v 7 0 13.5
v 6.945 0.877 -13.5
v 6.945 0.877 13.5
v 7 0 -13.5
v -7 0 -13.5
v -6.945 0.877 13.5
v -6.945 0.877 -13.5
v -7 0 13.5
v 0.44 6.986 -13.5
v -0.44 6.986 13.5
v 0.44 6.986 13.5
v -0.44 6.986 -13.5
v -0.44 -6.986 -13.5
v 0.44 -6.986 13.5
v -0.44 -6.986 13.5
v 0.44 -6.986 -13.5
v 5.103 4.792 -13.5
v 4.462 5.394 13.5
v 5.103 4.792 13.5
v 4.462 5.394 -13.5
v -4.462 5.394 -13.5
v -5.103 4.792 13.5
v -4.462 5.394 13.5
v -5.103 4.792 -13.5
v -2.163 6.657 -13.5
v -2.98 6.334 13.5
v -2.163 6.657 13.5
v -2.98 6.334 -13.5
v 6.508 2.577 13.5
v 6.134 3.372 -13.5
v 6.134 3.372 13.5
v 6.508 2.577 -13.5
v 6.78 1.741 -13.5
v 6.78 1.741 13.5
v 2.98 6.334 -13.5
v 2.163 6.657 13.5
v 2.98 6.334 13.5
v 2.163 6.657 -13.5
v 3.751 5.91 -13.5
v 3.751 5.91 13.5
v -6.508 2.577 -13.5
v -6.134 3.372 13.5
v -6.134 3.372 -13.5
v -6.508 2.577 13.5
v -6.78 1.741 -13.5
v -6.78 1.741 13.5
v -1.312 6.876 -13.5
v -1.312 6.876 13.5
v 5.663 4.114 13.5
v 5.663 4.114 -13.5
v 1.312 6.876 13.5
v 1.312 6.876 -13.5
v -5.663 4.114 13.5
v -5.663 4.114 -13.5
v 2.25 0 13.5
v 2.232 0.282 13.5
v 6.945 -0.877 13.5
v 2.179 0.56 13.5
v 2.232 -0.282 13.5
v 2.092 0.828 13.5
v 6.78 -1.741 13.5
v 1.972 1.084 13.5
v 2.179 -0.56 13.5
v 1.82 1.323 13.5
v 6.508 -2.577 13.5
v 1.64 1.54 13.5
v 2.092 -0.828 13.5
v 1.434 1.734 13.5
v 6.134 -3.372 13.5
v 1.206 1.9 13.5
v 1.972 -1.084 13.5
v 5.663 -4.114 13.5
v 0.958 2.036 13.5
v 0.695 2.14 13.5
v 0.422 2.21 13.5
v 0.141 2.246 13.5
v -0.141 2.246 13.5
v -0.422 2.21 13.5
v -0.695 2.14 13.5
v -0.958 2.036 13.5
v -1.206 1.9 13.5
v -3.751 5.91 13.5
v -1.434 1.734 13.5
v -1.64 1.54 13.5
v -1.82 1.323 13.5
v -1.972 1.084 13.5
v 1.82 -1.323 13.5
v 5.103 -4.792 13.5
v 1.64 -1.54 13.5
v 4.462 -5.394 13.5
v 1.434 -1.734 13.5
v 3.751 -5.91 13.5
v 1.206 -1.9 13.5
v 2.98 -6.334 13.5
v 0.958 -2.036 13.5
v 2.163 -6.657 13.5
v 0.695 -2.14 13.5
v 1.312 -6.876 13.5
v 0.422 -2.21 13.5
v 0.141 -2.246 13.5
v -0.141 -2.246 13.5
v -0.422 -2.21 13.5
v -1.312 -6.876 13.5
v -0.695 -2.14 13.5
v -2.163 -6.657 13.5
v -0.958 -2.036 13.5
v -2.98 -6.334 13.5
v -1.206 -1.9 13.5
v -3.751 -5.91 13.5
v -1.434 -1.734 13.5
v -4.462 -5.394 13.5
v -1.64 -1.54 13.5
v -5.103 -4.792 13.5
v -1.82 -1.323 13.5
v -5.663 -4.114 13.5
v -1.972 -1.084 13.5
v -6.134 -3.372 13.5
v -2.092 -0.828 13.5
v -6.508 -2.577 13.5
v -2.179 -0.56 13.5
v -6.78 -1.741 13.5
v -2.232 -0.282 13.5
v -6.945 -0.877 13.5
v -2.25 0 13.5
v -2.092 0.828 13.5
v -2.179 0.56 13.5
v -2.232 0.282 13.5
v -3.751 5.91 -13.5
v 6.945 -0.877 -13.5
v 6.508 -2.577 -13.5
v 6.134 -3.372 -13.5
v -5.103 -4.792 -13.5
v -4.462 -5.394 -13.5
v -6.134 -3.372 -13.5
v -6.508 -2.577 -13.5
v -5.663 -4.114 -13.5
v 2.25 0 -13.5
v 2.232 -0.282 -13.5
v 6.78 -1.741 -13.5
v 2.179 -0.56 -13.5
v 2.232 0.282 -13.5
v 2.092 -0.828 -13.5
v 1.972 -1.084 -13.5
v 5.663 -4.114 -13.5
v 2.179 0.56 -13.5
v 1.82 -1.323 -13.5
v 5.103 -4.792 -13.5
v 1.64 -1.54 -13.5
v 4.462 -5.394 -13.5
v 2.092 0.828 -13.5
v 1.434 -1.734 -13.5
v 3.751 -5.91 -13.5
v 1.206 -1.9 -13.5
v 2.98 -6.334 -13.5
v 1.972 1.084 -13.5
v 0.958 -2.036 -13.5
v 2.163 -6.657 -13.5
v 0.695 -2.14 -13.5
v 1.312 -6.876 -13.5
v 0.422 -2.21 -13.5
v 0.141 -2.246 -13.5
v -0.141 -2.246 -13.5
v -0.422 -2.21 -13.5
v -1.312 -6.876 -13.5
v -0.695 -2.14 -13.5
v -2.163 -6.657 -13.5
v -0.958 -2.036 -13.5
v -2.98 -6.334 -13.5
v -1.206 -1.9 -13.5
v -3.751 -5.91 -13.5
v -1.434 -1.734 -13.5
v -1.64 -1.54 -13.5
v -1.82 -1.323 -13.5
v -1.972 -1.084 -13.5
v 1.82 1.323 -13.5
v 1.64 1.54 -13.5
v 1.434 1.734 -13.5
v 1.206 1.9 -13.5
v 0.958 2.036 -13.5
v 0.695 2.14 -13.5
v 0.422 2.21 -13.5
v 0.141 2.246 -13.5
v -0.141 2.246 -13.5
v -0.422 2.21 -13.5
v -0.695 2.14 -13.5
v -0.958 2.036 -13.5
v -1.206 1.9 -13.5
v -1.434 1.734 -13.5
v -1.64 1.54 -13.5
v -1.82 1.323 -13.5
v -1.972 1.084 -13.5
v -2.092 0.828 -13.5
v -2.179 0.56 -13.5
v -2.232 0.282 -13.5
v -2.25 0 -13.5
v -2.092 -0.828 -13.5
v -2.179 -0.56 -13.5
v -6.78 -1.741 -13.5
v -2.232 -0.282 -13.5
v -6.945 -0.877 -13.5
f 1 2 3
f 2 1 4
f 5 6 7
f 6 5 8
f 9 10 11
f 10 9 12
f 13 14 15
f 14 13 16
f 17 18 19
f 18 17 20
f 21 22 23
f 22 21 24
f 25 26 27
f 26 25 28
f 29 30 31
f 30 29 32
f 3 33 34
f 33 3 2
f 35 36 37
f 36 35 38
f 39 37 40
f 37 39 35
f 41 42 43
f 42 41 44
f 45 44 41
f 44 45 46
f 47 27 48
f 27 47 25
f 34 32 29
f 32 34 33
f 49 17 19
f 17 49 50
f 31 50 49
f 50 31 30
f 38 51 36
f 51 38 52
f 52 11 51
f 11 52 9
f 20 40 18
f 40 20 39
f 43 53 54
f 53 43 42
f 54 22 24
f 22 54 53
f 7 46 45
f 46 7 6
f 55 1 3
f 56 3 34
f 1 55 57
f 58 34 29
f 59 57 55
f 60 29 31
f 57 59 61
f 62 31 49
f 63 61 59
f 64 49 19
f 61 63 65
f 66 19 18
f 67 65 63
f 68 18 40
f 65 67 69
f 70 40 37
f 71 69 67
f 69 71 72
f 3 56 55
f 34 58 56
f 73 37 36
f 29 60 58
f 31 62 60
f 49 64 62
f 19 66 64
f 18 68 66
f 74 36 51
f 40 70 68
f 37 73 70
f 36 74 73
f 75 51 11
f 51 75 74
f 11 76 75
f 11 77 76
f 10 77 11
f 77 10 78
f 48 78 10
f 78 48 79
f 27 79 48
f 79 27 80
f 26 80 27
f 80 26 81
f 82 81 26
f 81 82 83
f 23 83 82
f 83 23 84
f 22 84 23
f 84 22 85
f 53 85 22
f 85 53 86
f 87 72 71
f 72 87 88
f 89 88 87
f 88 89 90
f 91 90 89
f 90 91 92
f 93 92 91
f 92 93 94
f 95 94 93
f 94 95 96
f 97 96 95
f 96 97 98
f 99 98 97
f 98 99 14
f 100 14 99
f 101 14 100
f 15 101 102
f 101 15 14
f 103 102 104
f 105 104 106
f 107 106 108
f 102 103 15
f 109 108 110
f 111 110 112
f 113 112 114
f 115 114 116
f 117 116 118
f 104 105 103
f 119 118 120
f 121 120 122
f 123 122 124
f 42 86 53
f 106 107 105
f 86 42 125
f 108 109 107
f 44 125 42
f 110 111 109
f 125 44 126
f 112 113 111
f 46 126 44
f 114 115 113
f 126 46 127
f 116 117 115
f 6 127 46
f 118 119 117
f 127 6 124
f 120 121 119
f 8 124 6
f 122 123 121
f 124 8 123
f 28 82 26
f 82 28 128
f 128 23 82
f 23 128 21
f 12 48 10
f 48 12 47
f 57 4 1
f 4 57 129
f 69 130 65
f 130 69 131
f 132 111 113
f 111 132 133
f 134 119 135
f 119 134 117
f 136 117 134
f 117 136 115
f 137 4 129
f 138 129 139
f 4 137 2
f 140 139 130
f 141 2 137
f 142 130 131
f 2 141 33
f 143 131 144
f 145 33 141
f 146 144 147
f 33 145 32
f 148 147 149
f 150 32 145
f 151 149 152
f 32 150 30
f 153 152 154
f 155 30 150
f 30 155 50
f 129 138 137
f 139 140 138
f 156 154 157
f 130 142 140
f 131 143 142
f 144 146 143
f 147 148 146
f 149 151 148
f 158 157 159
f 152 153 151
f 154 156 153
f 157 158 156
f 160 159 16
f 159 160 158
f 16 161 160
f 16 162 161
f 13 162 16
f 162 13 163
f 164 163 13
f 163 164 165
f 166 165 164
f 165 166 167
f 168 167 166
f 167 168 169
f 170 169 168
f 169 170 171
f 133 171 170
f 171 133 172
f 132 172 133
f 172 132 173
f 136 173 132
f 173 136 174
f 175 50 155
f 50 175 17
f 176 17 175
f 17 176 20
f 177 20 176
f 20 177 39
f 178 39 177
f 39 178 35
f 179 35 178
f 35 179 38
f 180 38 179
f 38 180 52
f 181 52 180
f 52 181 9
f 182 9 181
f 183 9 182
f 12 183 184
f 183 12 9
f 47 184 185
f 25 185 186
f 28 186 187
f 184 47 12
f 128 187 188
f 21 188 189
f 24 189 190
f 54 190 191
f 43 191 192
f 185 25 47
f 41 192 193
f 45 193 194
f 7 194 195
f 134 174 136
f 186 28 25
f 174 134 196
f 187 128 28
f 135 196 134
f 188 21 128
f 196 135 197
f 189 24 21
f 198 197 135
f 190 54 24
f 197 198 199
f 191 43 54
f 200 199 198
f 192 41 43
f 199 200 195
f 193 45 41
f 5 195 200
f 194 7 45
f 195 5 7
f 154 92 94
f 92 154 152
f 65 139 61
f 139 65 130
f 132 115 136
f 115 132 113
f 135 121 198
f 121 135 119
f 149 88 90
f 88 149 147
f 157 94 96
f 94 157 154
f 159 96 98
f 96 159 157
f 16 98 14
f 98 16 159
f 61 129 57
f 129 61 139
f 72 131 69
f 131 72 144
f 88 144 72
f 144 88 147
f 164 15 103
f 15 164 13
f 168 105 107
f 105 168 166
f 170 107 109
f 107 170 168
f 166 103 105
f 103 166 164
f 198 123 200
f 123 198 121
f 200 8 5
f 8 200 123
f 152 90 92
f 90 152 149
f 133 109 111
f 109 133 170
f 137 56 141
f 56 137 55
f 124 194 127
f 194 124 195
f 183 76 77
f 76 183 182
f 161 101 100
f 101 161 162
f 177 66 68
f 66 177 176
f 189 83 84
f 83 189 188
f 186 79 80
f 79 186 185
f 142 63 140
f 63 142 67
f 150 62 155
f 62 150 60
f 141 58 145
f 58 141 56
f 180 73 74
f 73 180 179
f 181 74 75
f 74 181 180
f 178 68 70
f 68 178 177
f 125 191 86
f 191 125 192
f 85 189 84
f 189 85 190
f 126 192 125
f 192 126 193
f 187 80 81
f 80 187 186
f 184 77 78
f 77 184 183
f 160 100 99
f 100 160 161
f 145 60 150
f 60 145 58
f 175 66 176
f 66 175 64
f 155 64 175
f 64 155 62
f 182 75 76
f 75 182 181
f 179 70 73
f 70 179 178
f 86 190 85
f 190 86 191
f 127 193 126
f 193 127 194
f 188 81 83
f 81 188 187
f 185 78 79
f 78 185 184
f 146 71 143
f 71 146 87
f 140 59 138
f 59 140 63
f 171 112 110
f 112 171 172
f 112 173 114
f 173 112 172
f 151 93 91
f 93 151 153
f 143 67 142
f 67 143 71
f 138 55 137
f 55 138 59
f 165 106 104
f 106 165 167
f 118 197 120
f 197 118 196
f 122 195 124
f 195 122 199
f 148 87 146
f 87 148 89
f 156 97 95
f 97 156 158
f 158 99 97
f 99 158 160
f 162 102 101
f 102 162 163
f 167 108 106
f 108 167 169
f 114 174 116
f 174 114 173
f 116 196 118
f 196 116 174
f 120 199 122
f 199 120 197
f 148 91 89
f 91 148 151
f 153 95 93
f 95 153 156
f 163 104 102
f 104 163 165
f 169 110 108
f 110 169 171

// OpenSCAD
$fn = 50;


difference() {
	union() {
		translate(v = [0, 0, -13.5000000000]) {
			cylinder(h = 27, r = 7.0000000000);
		}
	}
	union() {
		translate(v = [0, 0, -100.0000000000]) {
			cylinder(h = 200, r = 2.2500000000);
		}
	}
}
